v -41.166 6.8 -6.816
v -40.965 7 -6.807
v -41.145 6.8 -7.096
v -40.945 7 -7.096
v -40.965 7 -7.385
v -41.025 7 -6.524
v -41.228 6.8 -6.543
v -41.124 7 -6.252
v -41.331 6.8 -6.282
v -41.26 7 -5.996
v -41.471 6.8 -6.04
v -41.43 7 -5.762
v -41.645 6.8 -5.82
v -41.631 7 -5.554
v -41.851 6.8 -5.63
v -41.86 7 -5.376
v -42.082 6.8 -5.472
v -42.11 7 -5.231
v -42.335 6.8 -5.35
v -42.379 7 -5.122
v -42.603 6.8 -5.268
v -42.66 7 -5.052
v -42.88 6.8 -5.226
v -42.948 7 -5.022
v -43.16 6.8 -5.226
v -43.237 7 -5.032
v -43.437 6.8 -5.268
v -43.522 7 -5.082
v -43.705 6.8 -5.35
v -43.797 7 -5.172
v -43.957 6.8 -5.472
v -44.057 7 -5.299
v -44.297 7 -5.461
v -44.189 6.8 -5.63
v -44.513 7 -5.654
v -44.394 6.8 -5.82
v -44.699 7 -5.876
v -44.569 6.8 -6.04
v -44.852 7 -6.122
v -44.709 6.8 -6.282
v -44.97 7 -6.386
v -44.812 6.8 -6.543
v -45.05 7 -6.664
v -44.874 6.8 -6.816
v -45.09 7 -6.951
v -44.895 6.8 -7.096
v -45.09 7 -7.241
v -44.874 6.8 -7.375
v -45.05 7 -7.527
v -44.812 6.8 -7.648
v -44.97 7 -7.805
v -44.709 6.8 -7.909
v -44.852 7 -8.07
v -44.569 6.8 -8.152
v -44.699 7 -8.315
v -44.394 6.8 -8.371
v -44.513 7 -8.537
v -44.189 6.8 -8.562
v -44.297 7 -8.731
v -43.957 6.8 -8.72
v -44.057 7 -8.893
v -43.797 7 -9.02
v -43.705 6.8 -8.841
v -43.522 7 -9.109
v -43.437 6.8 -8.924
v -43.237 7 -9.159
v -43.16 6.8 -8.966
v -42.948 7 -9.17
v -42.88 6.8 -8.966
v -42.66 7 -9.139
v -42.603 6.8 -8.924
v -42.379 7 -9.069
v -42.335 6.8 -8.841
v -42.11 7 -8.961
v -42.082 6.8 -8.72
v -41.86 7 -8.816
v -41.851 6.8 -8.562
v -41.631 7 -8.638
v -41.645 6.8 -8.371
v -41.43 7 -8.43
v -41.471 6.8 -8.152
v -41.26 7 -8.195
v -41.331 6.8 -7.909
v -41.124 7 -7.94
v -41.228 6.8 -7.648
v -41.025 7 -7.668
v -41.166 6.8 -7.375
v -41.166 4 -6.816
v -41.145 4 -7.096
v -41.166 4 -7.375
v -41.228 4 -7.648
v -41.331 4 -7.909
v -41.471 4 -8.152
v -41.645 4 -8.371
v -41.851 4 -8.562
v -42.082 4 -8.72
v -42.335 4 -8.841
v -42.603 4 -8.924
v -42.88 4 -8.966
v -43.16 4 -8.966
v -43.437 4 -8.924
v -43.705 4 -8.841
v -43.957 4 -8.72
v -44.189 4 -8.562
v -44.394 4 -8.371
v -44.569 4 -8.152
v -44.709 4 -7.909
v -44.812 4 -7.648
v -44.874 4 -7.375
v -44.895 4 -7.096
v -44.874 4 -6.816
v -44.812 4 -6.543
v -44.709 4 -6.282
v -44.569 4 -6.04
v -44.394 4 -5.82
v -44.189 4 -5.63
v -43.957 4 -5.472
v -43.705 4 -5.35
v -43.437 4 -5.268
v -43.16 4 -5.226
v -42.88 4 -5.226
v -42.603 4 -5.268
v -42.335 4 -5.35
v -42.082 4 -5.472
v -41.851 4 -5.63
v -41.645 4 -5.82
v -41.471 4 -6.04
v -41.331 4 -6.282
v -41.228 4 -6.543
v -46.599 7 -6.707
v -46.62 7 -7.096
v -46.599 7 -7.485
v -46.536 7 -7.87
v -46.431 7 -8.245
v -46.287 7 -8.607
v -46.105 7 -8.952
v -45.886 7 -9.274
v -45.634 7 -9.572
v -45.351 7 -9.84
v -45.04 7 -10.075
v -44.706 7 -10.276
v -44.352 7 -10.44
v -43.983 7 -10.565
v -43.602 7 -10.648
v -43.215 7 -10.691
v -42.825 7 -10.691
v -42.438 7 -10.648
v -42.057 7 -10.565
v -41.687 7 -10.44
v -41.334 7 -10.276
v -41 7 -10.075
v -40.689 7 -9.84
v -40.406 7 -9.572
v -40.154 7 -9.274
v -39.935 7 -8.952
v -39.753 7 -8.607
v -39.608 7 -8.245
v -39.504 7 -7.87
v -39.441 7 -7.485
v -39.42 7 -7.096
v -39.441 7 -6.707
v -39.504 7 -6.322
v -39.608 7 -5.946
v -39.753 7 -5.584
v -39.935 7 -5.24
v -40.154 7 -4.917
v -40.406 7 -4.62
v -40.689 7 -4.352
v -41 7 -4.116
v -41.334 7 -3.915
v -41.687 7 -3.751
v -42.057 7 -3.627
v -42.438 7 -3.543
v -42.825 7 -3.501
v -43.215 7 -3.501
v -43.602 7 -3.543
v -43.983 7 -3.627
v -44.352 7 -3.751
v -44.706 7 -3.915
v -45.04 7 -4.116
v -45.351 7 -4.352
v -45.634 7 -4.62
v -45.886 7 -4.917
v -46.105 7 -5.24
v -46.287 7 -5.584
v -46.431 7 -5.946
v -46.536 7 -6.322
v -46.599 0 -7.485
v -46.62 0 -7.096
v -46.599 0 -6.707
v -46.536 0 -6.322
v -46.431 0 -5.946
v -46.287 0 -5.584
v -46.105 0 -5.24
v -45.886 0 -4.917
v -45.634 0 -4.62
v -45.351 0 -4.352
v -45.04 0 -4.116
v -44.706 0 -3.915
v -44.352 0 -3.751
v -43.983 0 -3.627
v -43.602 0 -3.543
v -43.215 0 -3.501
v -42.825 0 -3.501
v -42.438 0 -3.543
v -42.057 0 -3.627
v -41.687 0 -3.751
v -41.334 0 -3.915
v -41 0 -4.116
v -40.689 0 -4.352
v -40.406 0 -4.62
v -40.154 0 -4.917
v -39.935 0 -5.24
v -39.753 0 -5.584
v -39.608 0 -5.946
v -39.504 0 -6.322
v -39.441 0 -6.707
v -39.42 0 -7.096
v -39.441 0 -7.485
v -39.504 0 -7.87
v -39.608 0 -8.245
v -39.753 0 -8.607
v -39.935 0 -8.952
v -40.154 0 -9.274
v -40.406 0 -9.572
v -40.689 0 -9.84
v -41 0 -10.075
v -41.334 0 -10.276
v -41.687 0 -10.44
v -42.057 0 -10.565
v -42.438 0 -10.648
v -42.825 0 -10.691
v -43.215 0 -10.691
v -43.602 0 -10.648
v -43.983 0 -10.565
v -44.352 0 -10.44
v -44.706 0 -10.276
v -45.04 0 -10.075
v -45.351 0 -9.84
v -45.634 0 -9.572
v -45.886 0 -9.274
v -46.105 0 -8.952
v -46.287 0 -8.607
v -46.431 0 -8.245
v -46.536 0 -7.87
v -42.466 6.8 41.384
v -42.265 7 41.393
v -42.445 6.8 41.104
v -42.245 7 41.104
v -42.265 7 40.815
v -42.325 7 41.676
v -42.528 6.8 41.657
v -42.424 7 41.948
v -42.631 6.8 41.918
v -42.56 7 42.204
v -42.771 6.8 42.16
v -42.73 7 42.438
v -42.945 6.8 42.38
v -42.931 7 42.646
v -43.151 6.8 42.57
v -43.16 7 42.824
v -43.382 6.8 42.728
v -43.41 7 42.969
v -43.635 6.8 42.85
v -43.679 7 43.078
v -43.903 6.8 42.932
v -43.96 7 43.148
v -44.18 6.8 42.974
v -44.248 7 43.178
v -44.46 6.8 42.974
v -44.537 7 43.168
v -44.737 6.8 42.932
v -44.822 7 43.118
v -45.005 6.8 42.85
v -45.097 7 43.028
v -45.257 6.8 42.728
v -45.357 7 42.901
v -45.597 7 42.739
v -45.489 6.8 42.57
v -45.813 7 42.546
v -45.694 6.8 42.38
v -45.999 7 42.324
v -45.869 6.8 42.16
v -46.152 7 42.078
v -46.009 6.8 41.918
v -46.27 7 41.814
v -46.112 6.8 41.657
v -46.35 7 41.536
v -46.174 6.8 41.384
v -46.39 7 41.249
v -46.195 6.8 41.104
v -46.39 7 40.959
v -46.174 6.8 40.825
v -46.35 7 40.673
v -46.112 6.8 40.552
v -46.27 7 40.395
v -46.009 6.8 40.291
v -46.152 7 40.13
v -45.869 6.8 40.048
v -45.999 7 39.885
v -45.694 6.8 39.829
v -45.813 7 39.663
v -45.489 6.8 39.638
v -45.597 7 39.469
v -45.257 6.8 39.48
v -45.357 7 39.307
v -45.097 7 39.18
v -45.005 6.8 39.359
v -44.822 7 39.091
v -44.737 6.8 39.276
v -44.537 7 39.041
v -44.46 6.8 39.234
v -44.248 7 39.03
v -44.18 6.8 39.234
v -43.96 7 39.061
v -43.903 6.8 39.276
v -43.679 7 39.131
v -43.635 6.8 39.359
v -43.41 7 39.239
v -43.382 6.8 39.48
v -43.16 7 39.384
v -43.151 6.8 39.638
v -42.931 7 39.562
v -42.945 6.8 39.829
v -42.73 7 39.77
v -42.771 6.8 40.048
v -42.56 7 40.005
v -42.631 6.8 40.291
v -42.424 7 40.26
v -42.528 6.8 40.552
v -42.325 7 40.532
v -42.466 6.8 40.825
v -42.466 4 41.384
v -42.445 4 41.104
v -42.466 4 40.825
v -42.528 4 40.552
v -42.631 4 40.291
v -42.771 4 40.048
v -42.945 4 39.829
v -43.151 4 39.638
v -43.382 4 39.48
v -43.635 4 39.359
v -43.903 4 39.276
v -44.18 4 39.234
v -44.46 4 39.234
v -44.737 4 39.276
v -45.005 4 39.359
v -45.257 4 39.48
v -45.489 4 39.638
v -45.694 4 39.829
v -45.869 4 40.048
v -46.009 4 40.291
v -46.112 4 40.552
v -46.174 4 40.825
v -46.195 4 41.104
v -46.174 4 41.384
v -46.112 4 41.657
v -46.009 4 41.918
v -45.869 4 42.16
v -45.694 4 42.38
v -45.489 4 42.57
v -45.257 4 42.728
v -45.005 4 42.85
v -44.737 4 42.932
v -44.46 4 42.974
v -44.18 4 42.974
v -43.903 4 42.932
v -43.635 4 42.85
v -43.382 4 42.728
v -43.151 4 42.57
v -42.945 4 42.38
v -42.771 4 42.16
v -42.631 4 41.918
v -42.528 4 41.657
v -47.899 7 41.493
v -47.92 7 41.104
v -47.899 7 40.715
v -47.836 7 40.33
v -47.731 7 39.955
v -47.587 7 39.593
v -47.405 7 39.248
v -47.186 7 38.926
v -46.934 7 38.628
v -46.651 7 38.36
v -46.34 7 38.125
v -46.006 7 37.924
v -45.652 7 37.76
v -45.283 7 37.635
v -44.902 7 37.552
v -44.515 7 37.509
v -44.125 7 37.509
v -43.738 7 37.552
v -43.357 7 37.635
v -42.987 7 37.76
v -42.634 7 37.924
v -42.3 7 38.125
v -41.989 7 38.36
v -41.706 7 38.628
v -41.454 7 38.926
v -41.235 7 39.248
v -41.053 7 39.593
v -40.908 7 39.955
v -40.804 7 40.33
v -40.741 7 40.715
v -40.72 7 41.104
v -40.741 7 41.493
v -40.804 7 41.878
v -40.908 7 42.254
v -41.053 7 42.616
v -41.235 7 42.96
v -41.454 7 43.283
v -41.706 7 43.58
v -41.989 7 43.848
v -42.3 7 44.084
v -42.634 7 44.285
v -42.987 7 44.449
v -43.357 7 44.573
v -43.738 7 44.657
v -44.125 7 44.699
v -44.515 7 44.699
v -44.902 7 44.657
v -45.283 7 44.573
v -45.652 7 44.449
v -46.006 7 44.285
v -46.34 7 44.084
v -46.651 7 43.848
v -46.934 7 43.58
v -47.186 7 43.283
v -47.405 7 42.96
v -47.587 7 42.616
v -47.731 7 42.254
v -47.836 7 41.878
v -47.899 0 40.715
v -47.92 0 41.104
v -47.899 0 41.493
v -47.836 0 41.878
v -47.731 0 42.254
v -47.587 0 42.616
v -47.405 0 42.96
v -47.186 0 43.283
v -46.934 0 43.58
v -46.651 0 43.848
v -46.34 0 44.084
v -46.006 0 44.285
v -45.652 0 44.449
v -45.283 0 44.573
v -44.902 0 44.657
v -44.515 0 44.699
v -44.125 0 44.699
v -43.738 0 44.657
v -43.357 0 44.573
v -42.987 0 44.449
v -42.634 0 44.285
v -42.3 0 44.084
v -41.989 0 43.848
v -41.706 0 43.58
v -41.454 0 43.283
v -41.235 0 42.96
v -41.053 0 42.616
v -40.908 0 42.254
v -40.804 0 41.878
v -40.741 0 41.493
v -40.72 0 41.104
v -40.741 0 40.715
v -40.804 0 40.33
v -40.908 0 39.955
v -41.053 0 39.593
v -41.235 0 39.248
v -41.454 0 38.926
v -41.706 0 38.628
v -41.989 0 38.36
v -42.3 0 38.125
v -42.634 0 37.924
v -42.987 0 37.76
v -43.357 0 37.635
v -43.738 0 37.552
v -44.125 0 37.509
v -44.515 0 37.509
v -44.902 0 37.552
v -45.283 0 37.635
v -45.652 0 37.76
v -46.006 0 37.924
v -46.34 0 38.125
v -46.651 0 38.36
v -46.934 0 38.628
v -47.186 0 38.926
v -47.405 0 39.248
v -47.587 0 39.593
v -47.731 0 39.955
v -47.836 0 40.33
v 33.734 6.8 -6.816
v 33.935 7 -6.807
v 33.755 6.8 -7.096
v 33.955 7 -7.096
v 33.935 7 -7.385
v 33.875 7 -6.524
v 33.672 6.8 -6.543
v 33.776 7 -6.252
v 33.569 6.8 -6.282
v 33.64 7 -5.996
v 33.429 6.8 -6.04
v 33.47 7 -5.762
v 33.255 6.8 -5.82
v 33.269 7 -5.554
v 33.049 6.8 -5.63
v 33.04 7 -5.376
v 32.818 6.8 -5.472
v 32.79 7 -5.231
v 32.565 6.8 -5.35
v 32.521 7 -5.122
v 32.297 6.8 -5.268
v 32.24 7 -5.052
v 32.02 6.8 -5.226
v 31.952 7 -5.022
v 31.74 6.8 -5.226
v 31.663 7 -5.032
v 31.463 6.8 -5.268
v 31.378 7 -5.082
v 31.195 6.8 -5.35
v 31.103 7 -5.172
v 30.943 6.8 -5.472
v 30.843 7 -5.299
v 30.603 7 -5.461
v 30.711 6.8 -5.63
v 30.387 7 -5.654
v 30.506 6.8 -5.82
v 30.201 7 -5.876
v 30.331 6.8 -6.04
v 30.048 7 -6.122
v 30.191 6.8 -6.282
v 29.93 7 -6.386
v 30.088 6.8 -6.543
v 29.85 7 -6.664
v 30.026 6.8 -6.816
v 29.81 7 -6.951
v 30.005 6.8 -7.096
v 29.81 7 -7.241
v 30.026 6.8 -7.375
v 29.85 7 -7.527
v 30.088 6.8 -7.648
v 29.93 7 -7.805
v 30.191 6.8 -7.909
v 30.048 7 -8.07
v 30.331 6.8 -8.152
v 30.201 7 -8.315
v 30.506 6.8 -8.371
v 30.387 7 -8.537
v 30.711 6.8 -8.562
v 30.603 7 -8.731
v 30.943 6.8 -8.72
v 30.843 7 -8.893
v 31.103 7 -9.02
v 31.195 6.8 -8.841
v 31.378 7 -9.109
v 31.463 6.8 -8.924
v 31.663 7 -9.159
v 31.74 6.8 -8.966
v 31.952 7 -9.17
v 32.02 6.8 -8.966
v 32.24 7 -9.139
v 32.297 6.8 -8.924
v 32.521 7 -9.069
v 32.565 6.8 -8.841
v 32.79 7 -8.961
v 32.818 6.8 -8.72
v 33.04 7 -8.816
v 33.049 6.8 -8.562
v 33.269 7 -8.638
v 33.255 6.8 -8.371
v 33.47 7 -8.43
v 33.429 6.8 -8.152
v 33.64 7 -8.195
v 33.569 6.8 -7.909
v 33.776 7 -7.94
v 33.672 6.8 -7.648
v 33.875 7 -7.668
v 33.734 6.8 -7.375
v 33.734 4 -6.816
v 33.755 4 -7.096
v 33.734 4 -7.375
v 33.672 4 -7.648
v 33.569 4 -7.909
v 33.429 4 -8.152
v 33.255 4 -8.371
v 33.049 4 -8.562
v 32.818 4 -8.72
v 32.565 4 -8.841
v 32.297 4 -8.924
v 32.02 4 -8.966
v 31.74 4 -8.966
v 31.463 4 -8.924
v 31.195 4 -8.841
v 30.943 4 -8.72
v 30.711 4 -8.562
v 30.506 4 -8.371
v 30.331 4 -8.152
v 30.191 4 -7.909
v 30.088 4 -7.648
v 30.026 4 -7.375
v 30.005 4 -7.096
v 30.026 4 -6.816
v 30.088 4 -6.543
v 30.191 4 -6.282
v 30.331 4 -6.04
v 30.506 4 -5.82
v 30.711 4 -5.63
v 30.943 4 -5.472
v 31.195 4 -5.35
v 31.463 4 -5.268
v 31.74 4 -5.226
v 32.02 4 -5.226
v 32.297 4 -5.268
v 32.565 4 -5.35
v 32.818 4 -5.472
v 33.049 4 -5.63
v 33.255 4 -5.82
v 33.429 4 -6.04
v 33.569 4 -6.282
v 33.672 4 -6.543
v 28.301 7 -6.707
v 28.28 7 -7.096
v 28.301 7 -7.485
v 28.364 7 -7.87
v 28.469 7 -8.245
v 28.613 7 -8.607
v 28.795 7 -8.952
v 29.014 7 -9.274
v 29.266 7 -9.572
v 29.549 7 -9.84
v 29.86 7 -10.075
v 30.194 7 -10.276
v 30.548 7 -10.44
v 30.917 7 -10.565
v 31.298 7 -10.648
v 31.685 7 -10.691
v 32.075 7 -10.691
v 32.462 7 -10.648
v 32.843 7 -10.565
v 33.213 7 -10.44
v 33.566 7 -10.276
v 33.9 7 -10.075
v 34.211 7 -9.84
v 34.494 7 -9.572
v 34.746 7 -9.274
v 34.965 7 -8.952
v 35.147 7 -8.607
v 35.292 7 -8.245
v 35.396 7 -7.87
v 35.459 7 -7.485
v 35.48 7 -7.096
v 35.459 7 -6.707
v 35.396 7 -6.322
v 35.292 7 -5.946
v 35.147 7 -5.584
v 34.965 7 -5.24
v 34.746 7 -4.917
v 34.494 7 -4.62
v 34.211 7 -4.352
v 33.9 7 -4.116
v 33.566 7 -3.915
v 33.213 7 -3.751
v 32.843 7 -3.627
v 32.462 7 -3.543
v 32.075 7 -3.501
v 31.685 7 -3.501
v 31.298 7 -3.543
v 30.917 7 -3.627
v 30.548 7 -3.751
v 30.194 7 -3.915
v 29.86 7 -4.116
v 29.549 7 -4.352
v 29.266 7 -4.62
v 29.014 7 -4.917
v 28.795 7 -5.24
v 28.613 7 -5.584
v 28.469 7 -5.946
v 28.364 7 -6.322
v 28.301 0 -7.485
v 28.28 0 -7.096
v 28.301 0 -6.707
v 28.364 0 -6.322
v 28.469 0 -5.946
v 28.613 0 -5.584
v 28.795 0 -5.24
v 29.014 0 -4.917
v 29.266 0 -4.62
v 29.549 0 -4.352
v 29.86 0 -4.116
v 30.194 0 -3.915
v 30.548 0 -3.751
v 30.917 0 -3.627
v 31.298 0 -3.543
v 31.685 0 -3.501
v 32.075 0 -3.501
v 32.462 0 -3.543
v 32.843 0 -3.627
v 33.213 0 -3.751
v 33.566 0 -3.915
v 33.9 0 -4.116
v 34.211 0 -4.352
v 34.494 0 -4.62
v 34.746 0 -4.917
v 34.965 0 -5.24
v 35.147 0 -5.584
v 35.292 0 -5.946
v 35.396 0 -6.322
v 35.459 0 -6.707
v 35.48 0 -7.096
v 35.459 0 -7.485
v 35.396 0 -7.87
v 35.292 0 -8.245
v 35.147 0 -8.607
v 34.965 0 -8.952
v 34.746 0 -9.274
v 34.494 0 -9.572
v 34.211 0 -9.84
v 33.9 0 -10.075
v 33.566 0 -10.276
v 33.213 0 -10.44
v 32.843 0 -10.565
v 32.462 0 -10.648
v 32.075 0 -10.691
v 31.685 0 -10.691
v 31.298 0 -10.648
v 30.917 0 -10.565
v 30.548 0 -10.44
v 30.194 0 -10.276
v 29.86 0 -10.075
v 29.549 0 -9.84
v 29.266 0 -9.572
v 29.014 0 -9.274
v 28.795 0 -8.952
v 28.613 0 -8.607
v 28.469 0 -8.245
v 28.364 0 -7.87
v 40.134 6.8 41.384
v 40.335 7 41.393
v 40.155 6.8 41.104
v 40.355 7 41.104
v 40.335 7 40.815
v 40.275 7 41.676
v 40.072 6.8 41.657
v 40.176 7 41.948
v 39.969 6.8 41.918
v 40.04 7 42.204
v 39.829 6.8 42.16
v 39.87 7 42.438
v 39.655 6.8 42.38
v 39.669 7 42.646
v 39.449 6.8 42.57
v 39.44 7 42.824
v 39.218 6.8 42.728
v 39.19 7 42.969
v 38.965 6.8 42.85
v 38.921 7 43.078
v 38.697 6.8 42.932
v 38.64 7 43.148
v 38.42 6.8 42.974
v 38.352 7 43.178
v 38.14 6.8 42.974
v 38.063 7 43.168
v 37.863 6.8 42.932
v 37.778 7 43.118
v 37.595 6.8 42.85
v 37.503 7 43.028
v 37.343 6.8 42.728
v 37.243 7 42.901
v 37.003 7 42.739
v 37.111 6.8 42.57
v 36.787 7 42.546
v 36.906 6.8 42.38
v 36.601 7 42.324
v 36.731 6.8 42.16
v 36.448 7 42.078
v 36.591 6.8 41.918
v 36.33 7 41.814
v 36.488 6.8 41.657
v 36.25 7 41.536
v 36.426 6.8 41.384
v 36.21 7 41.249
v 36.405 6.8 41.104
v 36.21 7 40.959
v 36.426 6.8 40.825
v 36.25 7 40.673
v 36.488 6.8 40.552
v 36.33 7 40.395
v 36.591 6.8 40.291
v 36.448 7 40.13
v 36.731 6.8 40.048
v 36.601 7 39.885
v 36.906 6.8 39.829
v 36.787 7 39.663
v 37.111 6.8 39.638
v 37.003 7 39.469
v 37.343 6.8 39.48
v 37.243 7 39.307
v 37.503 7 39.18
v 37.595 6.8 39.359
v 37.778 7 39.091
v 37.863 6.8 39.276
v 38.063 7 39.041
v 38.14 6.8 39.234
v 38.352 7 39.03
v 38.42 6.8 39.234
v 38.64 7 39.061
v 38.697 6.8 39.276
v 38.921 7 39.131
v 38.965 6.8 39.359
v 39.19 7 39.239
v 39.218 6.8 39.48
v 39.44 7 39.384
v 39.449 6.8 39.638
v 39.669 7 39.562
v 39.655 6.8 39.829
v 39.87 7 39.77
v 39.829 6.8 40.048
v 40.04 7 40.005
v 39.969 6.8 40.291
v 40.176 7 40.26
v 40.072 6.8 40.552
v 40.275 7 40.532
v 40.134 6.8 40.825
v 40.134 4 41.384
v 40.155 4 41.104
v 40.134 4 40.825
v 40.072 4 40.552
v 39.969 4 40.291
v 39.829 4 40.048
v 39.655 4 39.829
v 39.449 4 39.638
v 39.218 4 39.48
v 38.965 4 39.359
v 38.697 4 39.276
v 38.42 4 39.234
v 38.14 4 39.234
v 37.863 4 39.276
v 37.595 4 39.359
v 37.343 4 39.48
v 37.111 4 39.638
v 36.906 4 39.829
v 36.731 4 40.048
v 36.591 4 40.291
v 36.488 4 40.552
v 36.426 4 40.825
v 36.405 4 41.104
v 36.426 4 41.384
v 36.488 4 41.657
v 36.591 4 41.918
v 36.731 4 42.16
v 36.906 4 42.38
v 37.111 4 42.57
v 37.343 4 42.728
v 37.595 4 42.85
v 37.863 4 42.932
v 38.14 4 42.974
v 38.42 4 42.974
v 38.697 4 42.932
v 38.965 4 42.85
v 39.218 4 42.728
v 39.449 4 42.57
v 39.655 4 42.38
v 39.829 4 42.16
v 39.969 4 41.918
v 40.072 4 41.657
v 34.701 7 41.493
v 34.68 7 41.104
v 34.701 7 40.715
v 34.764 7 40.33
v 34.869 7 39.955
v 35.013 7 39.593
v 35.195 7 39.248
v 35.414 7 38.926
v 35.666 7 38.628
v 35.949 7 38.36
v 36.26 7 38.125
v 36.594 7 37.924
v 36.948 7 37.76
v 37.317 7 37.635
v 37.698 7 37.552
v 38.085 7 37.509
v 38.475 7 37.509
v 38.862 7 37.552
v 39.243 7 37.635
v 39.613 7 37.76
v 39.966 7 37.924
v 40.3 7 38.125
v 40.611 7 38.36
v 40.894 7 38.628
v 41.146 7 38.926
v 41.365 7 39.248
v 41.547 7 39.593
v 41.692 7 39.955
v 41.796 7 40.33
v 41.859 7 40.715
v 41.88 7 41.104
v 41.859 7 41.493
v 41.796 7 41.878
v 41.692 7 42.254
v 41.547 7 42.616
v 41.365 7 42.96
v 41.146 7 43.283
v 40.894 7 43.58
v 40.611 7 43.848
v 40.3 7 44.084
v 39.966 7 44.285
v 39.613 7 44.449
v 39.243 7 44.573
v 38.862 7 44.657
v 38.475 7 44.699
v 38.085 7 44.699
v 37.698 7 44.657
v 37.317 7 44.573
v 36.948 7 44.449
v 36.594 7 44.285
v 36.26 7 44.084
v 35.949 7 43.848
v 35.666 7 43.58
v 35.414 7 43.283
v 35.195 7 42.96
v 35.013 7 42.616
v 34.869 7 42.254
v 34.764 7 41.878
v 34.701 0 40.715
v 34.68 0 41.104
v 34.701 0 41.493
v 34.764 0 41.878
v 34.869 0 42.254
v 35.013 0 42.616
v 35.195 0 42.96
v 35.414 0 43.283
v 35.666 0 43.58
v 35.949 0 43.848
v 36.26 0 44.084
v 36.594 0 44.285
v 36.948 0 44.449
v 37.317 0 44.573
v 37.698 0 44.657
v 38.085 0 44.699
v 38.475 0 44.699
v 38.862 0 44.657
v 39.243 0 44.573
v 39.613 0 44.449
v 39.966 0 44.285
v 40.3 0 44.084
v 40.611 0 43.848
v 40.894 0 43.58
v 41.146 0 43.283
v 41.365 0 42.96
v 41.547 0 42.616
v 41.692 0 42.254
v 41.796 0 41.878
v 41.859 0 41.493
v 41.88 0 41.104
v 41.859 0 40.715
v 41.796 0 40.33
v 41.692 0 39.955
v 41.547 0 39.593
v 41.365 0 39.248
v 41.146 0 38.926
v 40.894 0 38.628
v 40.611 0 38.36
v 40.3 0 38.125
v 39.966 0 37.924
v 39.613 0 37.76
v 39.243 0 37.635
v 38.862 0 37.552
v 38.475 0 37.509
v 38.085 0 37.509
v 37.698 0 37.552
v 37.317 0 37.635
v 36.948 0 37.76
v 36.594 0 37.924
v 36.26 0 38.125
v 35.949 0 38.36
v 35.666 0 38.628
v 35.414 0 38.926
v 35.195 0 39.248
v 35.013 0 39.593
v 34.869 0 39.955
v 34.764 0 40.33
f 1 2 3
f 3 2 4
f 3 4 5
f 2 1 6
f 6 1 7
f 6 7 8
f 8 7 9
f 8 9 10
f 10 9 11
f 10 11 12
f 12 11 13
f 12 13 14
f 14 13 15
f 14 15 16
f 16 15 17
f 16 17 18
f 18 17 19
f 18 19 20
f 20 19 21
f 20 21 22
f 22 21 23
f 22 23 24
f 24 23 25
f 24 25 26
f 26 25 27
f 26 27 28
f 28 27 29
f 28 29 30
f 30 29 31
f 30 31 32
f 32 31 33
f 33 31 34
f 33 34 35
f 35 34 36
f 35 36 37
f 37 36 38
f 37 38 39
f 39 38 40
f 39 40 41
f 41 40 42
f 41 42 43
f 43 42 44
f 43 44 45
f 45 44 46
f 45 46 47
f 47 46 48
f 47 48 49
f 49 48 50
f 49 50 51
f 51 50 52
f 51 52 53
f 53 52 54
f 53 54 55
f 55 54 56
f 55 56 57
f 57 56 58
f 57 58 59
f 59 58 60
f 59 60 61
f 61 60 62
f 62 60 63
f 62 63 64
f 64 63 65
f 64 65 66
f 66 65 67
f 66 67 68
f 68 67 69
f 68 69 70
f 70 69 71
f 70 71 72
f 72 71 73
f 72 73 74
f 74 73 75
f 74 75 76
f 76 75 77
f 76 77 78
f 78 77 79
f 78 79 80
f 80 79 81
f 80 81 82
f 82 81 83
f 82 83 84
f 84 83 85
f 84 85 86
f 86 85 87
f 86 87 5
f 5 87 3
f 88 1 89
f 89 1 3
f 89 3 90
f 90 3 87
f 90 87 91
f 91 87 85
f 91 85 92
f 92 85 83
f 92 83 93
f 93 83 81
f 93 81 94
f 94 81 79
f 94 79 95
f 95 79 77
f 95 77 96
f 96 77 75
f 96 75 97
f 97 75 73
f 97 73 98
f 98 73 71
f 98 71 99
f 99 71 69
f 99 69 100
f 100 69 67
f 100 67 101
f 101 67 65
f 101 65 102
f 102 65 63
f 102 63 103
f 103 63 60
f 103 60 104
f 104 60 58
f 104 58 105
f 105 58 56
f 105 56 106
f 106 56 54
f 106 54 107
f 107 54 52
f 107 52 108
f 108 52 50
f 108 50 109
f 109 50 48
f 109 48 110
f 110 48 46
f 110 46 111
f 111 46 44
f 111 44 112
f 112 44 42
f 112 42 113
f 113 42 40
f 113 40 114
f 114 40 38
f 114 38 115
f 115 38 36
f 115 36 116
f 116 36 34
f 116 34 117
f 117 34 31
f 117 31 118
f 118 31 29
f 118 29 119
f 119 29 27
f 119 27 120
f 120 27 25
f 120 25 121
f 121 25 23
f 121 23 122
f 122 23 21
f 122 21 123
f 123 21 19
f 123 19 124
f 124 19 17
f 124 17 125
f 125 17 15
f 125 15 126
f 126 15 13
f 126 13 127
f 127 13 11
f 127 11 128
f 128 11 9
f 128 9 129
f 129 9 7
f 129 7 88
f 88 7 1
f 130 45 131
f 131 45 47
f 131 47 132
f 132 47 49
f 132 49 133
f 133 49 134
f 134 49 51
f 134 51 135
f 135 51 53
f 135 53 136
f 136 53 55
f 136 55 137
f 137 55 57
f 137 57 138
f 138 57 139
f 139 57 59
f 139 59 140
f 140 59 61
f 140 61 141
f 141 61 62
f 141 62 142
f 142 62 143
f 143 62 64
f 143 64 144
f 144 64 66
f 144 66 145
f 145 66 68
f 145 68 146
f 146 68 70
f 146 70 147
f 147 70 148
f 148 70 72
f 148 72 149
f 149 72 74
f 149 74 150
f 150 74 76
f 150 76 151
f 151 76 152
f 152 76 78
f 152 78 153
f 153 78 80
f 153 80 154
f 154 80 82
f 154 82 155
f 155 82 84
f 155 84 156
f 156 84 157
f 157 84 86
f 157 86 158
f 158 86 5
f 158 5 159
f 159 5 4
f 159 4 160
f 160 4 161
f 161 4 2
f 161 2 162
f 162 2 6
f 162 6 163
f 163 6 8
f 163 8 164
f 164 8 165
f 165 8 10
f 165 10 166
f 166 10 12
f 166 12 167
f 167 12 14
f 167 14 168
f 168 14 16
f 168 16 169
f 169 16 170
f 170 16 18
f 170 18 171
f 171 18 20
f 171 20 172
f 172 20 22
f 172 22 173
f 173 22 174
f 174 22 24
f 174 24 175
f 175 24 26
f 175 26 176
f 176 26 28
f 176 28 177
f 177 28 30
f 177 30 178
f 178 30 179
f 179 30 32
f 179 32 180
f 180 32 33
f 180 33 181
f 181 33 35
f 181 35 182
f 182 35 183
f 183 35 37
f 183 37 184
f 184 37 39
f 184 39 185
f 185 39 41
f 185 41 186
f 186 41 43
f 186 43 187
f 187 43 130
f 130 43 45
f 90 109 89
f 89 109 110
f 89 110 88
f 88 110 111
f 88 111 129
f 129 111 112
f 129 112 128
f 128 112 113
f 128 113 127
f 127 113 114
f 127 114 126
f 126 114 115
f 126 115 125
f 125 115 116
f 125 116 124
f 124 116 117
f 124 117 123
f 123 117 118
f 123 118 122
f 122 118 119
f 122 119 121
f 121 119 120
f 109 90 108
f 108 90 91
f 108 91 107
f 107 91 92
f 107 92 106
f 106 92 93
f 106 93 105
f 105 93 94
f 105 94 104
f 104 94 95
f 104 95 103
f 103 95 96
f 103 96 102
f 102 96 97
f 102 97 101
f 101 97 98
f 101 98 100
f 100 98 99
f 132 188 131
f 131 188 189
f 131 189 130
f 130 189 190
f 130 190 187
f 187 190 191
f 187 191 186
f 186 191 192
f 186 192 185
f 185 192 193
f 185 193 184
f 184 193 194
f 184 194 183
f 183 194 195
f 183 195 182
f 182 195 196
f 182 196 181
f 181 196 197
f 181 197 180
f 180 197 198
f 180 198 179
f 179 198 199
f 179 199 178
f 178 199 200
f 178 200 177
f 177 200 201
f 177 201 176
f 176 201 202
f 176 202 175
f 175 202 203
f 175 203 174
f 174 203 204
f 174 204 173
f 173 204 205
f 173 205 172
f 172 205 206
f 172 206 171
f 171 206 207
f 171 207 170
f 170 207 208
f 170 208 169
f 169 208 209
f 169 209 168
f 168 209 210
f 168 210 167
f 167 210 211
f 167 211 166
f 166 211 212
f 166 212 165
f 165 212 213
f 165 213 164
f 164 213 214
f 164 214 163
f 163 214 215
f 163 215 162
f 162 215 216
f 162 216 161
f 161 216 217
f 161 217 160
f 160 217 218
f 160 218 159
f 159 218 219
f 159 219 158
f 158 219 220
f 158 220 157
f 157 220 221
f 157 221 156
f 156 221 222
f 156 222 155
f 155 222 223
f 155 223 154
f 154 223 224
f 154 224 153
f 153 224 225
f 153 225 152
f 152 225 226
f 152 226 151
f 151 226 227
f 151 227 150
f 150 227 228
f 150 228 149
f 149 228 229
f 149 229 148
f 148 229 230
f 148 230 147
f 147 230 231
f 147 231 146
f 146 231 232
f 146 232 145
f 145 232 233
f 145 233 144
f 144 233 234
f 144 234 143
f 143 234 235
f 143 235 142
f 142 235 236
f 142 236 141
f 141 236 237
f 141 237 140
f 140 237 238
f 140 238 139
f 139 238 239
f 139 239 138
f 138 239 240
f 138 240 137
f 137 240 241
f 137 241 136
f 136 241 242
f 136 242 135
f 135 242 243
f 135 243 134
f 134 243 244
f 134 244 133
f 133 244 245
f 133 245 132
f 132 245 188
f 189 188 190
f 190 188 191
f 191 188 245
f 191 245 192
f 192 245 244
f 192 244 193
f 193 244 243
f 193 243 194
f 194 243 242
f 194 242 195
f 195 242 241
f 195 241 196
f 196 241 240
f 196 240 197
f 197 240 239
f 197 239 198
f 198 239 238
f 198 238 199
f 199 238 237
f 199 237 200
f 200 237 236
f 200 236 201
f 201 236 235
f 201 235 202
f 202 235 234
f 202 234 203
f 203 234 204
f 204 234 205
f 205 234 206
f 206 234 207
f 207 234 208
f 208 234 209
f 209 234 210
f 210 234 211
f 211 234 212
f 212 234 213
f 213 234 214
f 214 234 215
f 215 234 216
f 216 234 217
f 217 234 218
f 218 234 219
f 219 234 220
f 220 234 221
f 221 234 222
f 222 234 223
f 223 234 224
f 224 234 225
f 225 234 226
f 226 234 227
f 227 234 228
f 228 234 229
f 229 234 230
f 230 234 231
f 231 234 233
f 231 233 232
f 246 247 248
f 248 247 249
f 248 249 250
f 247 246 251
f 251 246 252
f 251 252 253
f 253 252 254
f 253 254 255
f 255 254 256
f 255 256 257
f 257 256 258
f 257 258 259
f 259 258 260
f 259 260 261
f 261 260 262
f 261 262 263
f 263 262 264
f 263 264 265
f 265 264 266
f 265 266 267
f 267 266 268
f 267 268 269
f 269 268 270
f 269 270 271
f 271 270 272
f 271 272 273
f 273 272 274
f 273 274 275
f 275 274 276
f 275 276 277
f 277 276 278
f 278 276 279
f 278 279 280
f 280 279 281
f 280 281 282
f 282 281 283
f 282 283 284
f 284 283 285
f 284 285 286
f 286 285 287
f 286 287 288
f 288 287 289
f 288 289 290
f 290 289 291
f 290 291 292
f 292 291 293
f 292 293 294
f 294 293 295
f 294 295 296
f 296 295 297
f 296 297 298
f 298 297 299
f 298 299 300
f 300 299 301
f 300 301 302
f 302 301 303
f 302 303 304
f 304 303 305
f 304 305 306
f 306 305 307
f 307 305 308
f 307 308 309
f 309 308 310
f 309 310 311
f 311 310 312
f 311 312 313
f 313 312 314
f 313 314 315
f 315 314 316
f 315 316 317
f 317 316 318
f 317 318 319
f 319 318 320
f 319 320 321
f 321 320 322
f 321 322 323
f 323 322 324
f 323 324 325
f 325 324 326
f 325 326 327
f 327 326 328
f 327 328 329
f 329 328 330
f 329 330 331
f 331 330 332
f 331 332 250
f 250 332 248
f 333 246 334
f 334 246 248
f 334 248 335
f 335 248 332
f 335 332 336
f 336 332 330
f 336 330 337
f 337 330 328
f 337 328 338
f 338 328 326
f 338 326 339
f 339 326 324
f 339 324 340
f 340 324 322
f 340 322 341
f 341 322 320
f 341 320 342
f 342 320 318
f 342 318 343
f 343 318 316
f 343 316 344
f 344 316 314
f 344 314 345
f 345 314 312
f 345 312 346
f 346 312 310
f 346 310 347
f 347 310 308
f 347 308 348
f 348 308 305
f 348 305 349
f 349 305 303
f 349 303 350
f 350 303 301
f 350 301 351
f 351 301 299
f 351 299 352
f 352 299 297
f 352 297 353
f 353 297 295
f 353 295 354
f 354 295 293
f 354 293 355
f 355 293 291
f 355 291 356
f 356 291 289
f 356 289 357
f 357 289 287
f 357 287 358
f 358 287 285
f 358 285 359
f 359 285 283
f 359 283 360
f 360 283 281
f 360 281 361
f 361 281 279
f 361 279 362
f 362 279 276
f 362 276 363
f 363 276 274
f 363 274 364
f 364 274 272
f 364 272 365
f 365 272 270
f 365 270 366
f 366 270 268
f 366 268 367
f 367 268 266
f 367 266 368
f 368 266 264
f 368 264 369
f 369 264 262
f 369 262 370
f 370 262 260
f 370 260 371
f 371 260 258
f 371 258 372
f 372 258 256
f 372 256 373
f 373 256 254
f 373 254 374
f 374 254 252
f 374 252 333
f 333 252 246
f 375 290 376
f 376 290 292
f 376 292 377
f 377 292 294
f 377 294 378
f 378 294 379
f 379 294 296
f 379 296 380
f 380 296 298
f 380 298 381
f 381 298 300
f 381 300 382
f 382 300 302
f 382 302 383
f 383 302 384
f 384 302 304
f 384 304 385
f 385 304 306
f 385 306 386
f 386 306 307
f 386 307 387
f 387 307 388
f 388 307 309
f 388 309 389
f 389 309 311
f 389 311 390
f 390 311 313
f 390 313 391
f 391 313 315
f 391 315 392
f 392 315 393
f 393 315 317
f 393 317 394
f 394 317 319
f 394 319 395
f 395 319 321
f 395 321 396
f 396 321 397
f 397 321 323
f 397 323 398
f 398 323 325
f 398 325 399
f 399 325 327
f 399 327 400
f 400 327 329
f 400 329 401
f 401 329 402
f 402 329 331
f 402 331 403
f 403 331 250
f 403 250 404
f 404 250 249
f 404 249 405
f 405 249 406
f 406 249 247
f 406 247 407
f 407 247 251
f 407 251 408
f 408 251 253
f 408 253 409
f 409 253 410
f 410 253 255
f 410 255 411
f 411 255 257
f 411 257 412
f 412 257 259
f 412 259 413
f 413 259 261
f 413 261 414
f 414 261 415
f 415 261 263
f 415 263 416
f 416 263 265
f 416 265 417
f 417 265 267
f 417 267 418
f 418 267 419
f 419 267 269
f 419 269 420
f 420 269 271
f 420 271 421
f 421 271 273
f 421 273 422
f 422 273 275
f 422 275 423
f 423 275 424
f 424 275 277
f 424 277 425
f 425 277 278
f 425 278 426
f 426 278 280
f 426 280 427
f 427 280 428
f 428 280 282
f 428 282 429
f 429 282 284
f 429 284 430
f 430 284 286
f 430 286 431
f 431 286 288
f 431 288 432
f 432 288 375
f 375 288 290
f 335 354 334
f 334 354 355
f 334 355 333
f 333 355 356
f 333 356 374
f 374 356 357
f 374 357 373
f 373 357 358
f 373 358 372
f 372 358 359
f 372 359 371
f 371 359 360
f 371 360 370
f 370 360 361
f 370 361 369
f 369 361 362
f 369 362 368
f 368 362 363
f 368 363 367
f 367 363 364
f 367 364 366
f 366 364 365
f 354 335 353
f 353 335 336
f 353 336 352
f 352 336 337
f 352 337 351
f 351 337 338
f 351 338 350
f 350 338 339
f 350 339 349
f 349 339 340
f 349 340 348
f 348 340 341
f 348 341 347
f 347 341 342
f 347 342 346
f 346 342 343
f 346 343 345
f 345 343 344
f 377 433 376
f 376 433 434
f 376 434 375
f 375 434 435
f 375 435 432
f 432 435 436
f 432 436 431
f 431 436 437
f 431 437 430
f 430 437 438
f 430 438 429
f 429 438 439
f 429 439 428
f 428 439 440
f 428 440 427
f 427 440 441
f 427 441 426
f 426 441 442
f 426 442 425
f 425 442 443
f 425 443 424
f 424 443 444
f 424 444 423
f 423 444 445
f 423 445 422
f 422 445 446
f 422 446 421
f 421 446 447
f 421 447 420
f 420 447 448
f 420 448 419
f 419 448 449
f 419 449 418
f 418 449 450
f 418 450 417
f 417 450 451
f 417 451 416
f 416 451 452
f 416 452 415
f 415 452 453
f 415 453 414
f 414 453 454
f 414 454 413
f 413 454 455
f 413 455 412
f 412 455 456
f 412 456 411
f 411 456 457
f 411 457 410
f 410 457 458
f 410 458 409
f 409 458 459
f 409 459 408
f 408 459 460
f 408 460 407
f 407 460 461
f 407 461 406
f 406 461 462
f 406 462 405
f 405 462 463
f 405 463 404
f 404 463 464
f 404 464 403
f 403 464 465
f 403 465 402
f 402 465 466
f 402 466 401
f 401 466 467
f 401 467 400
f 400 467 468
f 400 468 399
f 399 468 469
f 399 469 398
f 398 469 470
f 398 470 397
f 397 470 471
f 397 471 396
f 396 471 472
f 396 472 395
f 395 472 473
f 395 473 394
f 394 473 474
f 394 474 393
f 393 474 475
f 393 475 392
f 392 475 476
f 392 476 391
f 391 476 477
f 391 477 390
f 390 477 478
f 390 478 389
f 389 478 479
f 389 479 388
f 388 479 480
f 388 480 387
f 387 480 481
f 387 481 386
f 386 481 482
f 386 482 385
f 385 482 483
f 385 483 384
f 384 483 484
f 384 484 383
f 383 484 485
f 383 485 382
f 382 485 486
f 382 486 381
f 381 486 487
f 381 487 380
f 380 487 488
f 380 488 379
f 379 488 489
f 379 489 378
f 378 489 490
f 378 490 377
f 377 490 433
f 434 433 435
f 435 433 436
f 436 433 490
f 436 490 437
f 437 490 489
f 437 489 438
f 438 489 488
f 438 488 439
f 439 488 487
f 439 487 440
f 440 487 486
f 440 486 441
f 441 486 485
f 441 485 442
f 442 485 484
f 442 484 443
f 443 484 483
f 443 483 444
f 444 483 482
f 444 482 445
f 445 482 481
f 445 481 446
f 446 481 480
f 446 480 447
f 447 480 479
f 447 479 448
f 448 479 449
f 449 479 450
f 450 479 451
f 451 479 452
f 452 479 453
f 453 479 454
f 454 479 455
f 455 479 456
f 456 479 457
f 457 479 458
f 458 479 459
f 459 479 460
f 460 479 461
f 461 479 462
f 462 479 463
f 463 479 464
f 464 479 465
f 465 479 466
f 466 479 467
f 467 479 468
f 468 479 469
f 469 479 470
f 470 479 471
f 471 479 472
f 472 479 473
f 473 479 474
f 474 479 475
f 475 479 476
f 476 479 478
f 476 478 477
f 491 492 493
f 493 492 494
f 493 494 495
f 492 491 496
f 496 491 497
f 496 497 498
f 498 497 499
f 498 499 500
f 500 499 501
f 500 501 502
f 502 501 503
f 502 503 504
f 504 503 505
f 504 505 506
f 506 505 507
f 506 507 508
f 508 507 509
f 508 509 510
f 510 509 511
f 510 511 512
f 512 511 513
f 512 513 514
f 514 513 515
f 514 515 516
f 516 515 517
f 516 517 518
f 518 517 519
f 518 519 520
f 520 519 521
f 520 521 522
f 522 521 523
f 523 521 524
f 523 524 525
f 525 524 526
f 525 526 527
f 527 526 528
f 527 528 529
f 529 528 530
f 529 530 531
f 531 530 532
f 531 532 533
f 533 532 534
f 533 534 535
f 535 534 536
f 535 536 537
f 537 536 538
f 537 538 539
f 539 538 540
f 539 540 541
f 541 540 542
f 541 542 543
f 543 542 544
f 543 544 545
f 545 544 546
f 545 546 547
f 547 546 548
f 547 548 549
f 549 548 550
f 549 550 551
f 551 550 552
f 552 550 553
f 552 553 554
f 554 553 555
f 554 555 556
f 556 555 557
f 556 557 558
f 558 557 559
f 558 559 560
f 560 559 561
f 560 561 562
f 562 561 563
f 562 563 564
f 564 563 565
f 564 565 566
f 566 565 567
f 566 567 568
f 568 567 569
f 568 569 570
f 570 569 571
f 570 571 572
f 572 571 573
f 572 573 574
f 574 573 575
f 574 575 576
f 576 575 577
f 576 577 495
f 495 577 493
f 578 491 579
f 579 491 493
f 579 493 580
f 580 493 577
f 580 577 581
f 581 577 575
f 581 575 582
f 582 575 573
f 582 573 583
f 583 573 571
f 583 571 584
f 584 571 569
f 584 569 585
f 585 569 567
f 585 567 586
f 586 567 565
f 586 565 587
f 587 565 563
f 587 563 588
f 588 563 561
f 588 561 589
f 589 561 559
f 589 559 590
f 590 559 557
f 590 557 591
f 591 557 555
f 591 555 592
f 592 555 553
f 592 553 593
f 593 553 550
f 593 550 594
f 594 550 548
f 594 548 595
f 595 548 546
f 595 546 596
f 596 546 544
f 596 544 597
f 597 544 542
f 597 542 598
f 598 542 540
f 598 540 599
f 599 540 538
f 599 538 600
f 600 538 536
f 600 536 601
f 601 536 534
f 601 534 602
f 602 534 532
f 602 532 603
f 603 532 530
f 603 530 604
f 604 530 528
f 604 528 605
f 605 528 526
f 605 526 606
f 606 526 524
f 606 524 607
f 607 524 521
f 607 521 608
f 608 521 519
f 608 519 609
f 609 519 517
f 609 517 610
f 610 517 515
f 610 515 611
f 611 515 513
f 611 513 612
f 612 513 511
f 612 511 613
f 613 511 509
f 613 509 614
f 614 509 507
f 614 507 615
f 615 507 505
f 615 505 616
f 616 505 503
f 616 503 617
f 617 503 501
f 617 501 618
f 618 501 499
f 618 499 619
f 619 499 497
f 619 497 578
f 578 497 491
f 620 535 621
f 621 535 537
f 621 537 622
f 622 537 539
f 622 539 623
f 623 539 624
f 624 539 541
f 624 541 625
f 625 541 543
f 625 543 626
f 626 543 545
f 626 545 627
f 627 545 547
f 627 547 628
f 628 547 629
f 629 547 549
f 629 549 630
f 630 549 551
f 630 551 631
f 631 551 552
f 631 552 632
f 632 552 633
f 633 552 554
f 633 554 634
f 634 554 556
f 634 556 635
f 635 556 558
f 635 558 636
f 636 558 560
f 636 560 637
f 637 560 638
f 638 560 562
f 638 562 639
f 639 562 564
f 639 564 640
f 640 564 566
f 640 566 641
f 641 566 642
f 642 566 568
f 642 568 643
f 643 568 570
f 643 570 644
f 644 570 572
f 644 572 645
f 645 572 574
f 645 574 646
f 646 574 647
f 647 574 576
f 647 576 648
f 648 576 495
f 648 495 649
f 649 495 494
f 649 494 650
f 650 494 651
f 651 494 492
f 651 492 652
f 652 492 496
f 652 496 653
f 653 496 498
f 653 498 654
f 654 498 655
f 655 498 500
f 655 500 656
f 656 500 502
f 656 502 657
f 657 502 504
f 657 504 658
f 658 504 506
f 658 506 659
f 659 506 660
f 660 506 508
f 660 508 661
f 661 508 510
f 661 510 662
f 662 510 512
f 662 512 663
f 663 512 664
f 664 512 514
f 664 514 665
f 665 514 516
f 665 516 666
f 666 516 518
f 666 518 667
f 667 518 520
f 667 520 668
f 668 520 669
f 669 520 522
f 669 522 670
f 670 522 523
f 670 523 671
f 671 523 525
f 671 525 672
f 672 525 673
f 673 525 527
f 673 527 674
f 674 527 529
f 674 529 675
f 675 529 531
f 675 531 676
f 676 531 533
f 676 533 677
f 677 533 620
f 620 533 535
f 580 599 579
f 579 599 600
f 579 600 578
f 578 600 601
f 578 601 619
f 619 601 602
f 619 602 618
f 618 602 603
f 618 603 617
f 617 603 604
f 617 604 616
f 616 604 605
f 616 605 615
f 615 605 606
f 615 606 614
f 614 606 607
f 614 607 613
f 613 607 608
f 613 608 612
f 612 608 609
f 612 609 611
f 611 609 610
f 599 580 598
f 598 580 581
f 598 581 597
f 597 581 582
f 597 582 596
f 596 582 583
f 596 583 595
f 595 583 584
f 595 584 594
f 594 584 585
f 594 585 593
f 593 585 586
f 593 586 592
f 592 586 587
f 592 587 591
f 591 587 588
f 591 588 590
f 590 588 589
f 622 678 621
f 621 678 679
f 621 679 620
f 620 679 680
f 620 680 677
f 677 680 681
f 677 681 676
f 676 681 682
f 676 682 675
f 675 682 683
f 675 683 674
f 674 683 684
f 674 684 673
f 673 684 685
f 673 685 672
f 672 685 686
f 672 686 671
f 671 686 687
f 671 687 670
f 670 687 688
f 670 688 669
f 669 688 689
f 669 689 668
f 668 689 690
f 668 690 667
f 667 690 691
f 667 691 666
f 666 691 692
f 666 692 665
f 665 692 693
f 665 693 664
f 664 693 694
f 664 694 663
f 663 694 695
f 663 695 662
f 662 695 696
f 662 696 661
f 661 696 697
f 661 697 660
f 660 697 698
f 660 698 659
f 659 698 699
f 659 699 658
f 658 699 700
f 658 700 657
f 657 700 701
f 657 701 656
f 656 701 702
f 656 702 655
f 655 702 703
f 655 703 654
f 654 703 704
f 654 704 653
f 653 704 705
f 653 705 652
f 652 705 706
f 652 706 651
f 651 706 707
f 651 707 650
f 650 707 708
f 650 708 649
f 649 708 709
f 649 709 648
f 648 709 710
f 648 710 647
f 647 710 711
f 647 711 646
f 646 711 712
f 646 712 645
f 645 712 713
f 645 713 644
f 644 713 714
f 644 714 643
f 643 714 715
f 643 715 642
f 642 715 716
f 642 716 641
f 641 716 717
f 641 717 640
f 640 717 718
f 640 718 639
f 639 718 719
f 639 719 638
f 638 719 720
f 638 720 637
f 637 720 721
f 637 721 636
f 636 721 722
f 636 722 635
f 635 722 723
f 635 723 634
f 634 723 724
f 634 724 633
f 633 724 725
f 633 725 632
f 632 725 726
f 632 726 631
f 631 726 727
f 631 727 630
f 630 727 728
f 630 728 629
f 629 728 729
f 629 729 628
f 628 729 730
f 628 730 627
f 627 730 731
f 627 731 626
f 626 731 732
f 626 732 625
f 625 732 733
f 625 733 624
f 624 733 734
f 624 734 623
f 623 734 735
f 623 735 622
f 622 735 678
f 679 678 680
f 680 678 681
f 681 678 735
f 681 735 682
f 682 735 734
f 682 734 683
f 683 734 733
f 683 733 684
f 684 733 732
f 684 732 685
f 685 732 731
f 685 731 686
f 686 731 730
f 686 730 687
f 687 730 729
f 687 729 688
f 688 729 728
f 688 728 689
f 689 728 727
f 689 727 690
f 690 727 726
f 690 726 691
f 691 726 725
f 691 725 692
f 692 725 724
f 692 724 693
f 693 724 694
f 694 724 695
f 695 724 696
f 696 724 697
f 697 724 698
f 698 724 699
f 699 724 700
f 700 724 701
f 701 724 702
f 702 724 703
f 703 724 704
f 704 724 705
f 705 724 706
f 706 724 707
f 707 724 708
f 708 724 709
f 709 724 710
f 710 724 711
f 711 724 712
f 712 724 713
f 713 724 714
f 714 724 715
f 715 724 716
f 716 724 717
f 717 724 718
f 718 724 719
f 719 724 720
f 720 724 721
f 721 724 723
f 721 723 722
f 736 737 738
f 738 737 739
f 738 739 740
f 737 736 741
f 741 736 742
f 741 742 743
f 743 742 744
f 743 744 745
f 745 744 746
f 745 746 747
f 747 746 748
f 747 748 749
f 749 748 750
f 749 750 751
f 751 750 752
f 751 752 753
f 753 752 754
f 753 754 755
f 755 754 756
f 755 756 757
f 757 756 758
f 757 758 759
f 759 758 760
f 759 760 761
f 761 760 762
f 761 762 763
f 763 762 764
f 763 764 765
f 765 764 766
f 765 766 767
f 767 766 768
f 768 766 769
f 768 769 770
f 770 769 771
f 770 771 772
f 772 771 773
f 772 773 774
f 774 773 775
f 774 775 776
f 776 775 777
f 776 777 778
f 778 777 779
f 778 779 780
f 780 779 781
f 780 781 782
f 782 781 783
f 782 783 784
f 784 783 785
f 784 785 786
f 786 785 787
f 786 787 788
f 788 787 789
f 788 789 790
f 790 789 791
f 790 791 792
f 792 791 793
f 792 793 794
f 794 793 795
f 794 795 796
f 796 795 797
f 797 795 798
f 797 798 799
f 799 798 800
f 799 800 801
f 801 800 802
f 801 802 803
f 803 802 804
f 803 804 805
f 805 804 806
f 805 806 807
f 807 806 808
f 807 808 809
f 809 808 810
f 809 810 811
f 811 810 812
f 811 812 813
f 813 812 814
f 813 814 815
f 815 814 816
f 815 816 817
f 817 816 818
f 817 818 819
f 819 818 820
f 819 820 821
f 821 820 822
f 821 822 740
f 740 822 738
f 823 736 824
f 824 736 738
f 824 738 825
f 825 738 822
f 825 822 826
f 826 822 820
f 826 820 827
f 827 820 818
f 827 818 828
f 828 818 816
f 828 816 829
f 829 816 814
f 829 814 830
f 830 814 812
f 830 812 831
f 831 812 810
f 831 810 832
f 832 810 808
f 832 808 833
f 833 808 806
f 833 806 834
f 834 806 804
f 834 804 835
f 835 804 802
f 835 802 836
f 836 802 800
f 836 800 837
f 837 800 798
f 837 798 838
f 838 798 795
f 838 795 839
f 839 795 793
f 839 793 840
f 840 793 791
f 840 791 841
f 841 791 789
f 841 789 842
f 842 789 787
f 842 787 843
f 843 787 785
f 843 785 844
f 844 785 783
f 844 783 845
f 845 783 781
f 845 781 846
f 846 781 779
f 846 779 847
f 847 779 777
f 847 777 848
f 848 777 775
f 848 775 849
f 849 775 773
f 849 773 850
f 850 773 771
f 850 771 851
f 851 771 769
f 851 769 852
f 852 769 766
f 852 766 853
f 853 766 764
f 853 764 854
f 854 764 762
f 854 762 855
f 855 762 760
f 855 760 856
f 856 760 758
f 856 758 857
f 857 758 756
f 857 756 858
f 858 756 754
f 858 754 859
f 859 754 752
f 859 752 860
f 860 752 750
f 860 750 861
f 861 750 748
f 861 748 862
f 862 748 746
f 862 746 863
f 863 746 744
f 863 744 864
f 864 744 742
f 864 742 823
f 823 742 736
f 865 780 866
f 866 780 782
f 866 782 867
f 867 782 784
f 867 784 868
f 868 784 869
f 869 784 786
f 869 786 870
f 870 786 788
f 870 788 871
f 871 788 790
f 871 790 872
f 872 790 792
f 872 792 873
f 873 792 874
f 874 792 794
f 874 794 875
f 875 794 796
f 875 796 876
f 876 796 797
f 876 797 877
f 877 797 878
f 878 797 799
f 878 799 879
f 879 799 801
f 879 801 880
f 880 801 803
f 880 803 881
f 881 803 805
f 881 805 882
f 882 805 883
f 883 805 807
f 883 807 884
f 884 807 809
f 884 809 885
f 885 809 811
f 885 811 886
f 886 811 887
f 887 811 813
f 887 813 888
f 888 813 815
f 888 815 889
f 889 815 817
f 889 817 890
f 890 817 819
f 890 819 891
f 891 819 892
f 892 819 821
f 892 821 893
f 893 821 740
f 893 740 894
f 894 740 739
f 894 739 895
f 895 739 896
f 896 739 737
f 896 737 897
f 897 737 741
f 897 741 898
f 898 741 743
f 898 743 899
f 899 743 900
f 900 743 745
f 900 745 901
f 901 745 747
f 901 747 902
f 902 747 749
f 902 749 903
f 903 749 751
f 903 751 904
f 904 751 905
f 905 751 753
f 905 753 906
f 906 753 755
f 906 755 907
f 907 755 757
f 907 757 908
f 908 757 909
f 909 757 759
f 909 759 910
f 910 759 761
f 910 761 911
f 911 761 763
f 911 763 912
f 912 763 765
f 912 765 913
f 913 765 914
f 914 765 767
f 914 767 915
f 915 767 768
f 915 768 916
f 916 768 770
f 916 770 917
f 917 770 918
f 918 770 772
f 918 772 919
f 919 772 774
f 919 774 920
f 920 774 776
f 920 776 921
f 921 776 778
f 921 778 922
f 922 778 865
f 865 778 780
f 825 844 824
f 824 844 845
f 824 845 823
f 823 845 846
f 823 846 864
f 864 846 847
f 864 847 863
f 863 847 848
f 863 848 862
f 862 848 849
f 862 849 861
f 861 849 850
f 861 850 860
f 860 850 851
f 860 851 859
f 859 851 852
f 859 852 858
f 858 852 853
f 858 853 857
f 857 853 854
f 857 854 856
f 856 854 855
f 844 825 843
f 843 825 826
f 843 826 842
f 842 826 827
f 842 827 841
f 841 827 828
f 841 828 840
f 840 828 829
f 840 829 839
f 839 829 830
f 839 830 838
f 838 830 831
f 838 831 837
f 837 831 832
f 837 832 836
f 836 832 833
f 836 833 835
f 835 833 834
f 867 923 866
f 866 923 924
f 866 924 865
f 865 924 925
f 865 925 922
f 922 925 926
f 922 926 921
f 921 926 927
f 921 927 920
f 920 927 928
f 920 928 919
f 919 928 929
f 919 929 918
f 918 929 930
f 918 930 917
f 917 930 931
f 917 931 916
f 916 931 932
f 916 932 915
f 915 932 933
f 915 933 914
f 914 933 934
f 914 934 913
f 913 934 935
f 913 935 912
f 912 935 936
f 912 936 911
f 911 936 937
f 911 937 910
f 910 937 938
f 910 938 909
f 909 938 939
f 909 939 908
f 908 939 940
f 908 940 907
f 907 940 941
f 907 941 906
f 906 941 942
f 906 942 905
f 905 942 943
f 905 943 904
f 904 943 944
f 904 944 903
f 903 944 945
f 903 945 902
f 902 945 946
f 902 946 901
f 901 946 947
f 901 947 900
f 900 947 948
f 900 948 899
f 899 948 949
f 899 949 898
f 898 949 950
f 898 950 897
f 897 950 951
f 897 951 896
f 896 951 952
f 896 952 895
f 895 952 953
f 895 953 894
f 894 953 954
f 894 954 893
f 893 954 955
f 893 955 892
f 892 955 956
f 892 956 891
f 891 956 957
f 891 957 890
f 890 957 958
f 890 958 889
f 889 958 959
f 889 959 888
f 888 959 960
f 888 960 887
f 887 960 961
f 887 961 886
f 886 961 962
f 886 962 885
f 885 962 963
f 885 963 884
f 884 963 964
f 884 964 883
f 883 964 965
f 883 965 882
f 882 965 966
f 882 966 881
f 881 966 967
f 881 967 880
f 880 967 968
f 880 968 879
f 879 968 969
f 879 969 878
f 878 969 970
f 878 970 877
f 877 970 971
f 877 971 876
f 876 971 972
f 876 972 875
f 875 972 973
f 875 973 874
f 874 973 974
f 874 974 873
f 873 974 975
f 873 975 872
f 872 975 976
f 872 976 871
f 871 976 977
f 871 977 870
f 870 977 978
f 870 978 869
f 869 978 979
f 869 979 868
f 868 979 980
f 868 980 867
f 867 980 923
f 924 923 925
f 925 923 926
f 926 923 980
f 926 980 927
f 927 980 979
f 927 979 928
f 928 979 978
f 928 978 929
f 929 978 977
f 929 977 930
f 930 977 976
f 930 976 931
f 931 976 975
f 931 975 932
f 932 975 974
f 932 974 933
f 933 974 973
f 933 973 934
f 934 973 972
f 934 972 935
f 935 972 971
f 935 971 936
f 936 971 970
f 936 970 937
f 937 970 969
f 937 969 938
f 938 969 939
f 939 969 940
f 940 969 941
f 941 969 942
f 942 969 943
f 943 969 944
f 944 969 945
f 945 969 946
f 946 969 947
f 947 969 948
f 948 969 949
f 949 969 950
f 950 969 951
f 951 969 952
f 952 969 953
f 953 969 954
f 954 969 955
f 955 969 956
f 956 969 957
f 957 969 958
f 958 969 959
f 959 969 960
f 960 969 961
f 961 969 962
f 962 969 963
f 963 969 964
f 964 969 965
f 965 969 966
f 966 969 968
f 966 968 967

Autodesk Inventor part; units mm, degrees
ref_plane "YZ Plane" through (0, 0, 0) normal (1, 0, 0) x (0, 1, 0)
ref_plane "XZ Plane" through (0, 0, 0) normal (0, 1, 0) x (-1, 0, 0)
ref_plane "XY Plane" through (0, 0, 0) normal (0, 0, 1) x (1, 0, 0)
sketch "Sketch1" plane through (0, 0, 0) normal (0, 1, 0) x (-1, 0, 0)
  circle A0 centre (43.0199, -7.0958) radius 1.6 construction
  circle A1 centre (-31.8801, -7.0958) radius 1.6 construction
  circle A2 centre (44.3199, 41.1042) radius 1.6 construction
  circle A3 centre (-38.2801, 41.1042) radius 1.6 construction
  line L0 (58.8879, -10.055) -> (-40.7911, -10.055) construction
  line L1 (-40.7911, -10.055) -> (-40.7911, 44.0634) construction
  line L2 (-40.7911, 44.0634) -> (58.8879, 44.0634) construction
  line L3 (58.8879, 44.0634) -> (58.8879, -10.055) construction
  line L4 (43.0199, -7.0958) -> (43.0199, -10.055)
  line L5 (44.3199, 41.1042) -> (44.3199, 44.0634)
  dimension "d0" = 3.2
  dimension "d1" = 74.9
  dimension "d2" = 1.3
  dimension "d3" = 48.2
  dimension "d5" = 82.6
  dimension "d9" = 15.868
  dimension "d10" = 54.1184
  dimension "d11" = 99.679
sketch "Sketch2" plane through (0, 0, 0) normal (0, 1, 0) x (-1, 0, 0)
  circle A0 centre (43.0199, -7.0958) radius 1.6 construction
  circle A1 centre (-31.8801, -7.0958) radius 1.6 construction
  circle A2 centre (-38.2801, 41.1042) radius 1.6 construction
  circle A3 centre (44.3199, 41.1042) radius 1.6 construction
  circle A4 centre (43.0199, -7.0958) radius 3.6
  circle A5 centre (-31.8801, -7.0958) radius 3.6
  circle A6 centre (-38.2801, 41.1042) radius 3.6
  circle A7 centre (44.3199, 41.1042) radius 3.6
  point P0 (0, 0)
  dimension "d6" = 2
extrude "Extrusion1" add sketch "Sketch2" along normal blind 7
sketch "Sketch3" plane through (-43.0199, 7, -7.0958) normal (0, 1, 0) x (1, 0, 0)
  circle A0 centre (0, 0) radius 3.6 projected
  circle A1 centre (74.9, 0) radius 3.6 projected
  circle A2 centre (81.3, -48.2) radius 3.6 projected
  circle A3 centre (-1.3, -48.2) radius 3.6 projected
  point P0 (43.0199, -7.0958)
hole "Hole1" at (-43.0199, 7, -7.0958) at (31.8801, 7, -7.0958) at (38.2801, 7, 41.1042) at (-44.3199, 7, 41.1042) direction (0, -1, 0) diameter 3.75 depth 3
chamfer "Chamfer1" distance 0.2 angle 45 4 edges at (-44.3199, 7, 39.2292) (38.2801, 7, 39.2292) (31.8801, 7, -8.9708) (-43.0199, 7, -8.9708)
properties part number "arduino_mega_standoffs"
